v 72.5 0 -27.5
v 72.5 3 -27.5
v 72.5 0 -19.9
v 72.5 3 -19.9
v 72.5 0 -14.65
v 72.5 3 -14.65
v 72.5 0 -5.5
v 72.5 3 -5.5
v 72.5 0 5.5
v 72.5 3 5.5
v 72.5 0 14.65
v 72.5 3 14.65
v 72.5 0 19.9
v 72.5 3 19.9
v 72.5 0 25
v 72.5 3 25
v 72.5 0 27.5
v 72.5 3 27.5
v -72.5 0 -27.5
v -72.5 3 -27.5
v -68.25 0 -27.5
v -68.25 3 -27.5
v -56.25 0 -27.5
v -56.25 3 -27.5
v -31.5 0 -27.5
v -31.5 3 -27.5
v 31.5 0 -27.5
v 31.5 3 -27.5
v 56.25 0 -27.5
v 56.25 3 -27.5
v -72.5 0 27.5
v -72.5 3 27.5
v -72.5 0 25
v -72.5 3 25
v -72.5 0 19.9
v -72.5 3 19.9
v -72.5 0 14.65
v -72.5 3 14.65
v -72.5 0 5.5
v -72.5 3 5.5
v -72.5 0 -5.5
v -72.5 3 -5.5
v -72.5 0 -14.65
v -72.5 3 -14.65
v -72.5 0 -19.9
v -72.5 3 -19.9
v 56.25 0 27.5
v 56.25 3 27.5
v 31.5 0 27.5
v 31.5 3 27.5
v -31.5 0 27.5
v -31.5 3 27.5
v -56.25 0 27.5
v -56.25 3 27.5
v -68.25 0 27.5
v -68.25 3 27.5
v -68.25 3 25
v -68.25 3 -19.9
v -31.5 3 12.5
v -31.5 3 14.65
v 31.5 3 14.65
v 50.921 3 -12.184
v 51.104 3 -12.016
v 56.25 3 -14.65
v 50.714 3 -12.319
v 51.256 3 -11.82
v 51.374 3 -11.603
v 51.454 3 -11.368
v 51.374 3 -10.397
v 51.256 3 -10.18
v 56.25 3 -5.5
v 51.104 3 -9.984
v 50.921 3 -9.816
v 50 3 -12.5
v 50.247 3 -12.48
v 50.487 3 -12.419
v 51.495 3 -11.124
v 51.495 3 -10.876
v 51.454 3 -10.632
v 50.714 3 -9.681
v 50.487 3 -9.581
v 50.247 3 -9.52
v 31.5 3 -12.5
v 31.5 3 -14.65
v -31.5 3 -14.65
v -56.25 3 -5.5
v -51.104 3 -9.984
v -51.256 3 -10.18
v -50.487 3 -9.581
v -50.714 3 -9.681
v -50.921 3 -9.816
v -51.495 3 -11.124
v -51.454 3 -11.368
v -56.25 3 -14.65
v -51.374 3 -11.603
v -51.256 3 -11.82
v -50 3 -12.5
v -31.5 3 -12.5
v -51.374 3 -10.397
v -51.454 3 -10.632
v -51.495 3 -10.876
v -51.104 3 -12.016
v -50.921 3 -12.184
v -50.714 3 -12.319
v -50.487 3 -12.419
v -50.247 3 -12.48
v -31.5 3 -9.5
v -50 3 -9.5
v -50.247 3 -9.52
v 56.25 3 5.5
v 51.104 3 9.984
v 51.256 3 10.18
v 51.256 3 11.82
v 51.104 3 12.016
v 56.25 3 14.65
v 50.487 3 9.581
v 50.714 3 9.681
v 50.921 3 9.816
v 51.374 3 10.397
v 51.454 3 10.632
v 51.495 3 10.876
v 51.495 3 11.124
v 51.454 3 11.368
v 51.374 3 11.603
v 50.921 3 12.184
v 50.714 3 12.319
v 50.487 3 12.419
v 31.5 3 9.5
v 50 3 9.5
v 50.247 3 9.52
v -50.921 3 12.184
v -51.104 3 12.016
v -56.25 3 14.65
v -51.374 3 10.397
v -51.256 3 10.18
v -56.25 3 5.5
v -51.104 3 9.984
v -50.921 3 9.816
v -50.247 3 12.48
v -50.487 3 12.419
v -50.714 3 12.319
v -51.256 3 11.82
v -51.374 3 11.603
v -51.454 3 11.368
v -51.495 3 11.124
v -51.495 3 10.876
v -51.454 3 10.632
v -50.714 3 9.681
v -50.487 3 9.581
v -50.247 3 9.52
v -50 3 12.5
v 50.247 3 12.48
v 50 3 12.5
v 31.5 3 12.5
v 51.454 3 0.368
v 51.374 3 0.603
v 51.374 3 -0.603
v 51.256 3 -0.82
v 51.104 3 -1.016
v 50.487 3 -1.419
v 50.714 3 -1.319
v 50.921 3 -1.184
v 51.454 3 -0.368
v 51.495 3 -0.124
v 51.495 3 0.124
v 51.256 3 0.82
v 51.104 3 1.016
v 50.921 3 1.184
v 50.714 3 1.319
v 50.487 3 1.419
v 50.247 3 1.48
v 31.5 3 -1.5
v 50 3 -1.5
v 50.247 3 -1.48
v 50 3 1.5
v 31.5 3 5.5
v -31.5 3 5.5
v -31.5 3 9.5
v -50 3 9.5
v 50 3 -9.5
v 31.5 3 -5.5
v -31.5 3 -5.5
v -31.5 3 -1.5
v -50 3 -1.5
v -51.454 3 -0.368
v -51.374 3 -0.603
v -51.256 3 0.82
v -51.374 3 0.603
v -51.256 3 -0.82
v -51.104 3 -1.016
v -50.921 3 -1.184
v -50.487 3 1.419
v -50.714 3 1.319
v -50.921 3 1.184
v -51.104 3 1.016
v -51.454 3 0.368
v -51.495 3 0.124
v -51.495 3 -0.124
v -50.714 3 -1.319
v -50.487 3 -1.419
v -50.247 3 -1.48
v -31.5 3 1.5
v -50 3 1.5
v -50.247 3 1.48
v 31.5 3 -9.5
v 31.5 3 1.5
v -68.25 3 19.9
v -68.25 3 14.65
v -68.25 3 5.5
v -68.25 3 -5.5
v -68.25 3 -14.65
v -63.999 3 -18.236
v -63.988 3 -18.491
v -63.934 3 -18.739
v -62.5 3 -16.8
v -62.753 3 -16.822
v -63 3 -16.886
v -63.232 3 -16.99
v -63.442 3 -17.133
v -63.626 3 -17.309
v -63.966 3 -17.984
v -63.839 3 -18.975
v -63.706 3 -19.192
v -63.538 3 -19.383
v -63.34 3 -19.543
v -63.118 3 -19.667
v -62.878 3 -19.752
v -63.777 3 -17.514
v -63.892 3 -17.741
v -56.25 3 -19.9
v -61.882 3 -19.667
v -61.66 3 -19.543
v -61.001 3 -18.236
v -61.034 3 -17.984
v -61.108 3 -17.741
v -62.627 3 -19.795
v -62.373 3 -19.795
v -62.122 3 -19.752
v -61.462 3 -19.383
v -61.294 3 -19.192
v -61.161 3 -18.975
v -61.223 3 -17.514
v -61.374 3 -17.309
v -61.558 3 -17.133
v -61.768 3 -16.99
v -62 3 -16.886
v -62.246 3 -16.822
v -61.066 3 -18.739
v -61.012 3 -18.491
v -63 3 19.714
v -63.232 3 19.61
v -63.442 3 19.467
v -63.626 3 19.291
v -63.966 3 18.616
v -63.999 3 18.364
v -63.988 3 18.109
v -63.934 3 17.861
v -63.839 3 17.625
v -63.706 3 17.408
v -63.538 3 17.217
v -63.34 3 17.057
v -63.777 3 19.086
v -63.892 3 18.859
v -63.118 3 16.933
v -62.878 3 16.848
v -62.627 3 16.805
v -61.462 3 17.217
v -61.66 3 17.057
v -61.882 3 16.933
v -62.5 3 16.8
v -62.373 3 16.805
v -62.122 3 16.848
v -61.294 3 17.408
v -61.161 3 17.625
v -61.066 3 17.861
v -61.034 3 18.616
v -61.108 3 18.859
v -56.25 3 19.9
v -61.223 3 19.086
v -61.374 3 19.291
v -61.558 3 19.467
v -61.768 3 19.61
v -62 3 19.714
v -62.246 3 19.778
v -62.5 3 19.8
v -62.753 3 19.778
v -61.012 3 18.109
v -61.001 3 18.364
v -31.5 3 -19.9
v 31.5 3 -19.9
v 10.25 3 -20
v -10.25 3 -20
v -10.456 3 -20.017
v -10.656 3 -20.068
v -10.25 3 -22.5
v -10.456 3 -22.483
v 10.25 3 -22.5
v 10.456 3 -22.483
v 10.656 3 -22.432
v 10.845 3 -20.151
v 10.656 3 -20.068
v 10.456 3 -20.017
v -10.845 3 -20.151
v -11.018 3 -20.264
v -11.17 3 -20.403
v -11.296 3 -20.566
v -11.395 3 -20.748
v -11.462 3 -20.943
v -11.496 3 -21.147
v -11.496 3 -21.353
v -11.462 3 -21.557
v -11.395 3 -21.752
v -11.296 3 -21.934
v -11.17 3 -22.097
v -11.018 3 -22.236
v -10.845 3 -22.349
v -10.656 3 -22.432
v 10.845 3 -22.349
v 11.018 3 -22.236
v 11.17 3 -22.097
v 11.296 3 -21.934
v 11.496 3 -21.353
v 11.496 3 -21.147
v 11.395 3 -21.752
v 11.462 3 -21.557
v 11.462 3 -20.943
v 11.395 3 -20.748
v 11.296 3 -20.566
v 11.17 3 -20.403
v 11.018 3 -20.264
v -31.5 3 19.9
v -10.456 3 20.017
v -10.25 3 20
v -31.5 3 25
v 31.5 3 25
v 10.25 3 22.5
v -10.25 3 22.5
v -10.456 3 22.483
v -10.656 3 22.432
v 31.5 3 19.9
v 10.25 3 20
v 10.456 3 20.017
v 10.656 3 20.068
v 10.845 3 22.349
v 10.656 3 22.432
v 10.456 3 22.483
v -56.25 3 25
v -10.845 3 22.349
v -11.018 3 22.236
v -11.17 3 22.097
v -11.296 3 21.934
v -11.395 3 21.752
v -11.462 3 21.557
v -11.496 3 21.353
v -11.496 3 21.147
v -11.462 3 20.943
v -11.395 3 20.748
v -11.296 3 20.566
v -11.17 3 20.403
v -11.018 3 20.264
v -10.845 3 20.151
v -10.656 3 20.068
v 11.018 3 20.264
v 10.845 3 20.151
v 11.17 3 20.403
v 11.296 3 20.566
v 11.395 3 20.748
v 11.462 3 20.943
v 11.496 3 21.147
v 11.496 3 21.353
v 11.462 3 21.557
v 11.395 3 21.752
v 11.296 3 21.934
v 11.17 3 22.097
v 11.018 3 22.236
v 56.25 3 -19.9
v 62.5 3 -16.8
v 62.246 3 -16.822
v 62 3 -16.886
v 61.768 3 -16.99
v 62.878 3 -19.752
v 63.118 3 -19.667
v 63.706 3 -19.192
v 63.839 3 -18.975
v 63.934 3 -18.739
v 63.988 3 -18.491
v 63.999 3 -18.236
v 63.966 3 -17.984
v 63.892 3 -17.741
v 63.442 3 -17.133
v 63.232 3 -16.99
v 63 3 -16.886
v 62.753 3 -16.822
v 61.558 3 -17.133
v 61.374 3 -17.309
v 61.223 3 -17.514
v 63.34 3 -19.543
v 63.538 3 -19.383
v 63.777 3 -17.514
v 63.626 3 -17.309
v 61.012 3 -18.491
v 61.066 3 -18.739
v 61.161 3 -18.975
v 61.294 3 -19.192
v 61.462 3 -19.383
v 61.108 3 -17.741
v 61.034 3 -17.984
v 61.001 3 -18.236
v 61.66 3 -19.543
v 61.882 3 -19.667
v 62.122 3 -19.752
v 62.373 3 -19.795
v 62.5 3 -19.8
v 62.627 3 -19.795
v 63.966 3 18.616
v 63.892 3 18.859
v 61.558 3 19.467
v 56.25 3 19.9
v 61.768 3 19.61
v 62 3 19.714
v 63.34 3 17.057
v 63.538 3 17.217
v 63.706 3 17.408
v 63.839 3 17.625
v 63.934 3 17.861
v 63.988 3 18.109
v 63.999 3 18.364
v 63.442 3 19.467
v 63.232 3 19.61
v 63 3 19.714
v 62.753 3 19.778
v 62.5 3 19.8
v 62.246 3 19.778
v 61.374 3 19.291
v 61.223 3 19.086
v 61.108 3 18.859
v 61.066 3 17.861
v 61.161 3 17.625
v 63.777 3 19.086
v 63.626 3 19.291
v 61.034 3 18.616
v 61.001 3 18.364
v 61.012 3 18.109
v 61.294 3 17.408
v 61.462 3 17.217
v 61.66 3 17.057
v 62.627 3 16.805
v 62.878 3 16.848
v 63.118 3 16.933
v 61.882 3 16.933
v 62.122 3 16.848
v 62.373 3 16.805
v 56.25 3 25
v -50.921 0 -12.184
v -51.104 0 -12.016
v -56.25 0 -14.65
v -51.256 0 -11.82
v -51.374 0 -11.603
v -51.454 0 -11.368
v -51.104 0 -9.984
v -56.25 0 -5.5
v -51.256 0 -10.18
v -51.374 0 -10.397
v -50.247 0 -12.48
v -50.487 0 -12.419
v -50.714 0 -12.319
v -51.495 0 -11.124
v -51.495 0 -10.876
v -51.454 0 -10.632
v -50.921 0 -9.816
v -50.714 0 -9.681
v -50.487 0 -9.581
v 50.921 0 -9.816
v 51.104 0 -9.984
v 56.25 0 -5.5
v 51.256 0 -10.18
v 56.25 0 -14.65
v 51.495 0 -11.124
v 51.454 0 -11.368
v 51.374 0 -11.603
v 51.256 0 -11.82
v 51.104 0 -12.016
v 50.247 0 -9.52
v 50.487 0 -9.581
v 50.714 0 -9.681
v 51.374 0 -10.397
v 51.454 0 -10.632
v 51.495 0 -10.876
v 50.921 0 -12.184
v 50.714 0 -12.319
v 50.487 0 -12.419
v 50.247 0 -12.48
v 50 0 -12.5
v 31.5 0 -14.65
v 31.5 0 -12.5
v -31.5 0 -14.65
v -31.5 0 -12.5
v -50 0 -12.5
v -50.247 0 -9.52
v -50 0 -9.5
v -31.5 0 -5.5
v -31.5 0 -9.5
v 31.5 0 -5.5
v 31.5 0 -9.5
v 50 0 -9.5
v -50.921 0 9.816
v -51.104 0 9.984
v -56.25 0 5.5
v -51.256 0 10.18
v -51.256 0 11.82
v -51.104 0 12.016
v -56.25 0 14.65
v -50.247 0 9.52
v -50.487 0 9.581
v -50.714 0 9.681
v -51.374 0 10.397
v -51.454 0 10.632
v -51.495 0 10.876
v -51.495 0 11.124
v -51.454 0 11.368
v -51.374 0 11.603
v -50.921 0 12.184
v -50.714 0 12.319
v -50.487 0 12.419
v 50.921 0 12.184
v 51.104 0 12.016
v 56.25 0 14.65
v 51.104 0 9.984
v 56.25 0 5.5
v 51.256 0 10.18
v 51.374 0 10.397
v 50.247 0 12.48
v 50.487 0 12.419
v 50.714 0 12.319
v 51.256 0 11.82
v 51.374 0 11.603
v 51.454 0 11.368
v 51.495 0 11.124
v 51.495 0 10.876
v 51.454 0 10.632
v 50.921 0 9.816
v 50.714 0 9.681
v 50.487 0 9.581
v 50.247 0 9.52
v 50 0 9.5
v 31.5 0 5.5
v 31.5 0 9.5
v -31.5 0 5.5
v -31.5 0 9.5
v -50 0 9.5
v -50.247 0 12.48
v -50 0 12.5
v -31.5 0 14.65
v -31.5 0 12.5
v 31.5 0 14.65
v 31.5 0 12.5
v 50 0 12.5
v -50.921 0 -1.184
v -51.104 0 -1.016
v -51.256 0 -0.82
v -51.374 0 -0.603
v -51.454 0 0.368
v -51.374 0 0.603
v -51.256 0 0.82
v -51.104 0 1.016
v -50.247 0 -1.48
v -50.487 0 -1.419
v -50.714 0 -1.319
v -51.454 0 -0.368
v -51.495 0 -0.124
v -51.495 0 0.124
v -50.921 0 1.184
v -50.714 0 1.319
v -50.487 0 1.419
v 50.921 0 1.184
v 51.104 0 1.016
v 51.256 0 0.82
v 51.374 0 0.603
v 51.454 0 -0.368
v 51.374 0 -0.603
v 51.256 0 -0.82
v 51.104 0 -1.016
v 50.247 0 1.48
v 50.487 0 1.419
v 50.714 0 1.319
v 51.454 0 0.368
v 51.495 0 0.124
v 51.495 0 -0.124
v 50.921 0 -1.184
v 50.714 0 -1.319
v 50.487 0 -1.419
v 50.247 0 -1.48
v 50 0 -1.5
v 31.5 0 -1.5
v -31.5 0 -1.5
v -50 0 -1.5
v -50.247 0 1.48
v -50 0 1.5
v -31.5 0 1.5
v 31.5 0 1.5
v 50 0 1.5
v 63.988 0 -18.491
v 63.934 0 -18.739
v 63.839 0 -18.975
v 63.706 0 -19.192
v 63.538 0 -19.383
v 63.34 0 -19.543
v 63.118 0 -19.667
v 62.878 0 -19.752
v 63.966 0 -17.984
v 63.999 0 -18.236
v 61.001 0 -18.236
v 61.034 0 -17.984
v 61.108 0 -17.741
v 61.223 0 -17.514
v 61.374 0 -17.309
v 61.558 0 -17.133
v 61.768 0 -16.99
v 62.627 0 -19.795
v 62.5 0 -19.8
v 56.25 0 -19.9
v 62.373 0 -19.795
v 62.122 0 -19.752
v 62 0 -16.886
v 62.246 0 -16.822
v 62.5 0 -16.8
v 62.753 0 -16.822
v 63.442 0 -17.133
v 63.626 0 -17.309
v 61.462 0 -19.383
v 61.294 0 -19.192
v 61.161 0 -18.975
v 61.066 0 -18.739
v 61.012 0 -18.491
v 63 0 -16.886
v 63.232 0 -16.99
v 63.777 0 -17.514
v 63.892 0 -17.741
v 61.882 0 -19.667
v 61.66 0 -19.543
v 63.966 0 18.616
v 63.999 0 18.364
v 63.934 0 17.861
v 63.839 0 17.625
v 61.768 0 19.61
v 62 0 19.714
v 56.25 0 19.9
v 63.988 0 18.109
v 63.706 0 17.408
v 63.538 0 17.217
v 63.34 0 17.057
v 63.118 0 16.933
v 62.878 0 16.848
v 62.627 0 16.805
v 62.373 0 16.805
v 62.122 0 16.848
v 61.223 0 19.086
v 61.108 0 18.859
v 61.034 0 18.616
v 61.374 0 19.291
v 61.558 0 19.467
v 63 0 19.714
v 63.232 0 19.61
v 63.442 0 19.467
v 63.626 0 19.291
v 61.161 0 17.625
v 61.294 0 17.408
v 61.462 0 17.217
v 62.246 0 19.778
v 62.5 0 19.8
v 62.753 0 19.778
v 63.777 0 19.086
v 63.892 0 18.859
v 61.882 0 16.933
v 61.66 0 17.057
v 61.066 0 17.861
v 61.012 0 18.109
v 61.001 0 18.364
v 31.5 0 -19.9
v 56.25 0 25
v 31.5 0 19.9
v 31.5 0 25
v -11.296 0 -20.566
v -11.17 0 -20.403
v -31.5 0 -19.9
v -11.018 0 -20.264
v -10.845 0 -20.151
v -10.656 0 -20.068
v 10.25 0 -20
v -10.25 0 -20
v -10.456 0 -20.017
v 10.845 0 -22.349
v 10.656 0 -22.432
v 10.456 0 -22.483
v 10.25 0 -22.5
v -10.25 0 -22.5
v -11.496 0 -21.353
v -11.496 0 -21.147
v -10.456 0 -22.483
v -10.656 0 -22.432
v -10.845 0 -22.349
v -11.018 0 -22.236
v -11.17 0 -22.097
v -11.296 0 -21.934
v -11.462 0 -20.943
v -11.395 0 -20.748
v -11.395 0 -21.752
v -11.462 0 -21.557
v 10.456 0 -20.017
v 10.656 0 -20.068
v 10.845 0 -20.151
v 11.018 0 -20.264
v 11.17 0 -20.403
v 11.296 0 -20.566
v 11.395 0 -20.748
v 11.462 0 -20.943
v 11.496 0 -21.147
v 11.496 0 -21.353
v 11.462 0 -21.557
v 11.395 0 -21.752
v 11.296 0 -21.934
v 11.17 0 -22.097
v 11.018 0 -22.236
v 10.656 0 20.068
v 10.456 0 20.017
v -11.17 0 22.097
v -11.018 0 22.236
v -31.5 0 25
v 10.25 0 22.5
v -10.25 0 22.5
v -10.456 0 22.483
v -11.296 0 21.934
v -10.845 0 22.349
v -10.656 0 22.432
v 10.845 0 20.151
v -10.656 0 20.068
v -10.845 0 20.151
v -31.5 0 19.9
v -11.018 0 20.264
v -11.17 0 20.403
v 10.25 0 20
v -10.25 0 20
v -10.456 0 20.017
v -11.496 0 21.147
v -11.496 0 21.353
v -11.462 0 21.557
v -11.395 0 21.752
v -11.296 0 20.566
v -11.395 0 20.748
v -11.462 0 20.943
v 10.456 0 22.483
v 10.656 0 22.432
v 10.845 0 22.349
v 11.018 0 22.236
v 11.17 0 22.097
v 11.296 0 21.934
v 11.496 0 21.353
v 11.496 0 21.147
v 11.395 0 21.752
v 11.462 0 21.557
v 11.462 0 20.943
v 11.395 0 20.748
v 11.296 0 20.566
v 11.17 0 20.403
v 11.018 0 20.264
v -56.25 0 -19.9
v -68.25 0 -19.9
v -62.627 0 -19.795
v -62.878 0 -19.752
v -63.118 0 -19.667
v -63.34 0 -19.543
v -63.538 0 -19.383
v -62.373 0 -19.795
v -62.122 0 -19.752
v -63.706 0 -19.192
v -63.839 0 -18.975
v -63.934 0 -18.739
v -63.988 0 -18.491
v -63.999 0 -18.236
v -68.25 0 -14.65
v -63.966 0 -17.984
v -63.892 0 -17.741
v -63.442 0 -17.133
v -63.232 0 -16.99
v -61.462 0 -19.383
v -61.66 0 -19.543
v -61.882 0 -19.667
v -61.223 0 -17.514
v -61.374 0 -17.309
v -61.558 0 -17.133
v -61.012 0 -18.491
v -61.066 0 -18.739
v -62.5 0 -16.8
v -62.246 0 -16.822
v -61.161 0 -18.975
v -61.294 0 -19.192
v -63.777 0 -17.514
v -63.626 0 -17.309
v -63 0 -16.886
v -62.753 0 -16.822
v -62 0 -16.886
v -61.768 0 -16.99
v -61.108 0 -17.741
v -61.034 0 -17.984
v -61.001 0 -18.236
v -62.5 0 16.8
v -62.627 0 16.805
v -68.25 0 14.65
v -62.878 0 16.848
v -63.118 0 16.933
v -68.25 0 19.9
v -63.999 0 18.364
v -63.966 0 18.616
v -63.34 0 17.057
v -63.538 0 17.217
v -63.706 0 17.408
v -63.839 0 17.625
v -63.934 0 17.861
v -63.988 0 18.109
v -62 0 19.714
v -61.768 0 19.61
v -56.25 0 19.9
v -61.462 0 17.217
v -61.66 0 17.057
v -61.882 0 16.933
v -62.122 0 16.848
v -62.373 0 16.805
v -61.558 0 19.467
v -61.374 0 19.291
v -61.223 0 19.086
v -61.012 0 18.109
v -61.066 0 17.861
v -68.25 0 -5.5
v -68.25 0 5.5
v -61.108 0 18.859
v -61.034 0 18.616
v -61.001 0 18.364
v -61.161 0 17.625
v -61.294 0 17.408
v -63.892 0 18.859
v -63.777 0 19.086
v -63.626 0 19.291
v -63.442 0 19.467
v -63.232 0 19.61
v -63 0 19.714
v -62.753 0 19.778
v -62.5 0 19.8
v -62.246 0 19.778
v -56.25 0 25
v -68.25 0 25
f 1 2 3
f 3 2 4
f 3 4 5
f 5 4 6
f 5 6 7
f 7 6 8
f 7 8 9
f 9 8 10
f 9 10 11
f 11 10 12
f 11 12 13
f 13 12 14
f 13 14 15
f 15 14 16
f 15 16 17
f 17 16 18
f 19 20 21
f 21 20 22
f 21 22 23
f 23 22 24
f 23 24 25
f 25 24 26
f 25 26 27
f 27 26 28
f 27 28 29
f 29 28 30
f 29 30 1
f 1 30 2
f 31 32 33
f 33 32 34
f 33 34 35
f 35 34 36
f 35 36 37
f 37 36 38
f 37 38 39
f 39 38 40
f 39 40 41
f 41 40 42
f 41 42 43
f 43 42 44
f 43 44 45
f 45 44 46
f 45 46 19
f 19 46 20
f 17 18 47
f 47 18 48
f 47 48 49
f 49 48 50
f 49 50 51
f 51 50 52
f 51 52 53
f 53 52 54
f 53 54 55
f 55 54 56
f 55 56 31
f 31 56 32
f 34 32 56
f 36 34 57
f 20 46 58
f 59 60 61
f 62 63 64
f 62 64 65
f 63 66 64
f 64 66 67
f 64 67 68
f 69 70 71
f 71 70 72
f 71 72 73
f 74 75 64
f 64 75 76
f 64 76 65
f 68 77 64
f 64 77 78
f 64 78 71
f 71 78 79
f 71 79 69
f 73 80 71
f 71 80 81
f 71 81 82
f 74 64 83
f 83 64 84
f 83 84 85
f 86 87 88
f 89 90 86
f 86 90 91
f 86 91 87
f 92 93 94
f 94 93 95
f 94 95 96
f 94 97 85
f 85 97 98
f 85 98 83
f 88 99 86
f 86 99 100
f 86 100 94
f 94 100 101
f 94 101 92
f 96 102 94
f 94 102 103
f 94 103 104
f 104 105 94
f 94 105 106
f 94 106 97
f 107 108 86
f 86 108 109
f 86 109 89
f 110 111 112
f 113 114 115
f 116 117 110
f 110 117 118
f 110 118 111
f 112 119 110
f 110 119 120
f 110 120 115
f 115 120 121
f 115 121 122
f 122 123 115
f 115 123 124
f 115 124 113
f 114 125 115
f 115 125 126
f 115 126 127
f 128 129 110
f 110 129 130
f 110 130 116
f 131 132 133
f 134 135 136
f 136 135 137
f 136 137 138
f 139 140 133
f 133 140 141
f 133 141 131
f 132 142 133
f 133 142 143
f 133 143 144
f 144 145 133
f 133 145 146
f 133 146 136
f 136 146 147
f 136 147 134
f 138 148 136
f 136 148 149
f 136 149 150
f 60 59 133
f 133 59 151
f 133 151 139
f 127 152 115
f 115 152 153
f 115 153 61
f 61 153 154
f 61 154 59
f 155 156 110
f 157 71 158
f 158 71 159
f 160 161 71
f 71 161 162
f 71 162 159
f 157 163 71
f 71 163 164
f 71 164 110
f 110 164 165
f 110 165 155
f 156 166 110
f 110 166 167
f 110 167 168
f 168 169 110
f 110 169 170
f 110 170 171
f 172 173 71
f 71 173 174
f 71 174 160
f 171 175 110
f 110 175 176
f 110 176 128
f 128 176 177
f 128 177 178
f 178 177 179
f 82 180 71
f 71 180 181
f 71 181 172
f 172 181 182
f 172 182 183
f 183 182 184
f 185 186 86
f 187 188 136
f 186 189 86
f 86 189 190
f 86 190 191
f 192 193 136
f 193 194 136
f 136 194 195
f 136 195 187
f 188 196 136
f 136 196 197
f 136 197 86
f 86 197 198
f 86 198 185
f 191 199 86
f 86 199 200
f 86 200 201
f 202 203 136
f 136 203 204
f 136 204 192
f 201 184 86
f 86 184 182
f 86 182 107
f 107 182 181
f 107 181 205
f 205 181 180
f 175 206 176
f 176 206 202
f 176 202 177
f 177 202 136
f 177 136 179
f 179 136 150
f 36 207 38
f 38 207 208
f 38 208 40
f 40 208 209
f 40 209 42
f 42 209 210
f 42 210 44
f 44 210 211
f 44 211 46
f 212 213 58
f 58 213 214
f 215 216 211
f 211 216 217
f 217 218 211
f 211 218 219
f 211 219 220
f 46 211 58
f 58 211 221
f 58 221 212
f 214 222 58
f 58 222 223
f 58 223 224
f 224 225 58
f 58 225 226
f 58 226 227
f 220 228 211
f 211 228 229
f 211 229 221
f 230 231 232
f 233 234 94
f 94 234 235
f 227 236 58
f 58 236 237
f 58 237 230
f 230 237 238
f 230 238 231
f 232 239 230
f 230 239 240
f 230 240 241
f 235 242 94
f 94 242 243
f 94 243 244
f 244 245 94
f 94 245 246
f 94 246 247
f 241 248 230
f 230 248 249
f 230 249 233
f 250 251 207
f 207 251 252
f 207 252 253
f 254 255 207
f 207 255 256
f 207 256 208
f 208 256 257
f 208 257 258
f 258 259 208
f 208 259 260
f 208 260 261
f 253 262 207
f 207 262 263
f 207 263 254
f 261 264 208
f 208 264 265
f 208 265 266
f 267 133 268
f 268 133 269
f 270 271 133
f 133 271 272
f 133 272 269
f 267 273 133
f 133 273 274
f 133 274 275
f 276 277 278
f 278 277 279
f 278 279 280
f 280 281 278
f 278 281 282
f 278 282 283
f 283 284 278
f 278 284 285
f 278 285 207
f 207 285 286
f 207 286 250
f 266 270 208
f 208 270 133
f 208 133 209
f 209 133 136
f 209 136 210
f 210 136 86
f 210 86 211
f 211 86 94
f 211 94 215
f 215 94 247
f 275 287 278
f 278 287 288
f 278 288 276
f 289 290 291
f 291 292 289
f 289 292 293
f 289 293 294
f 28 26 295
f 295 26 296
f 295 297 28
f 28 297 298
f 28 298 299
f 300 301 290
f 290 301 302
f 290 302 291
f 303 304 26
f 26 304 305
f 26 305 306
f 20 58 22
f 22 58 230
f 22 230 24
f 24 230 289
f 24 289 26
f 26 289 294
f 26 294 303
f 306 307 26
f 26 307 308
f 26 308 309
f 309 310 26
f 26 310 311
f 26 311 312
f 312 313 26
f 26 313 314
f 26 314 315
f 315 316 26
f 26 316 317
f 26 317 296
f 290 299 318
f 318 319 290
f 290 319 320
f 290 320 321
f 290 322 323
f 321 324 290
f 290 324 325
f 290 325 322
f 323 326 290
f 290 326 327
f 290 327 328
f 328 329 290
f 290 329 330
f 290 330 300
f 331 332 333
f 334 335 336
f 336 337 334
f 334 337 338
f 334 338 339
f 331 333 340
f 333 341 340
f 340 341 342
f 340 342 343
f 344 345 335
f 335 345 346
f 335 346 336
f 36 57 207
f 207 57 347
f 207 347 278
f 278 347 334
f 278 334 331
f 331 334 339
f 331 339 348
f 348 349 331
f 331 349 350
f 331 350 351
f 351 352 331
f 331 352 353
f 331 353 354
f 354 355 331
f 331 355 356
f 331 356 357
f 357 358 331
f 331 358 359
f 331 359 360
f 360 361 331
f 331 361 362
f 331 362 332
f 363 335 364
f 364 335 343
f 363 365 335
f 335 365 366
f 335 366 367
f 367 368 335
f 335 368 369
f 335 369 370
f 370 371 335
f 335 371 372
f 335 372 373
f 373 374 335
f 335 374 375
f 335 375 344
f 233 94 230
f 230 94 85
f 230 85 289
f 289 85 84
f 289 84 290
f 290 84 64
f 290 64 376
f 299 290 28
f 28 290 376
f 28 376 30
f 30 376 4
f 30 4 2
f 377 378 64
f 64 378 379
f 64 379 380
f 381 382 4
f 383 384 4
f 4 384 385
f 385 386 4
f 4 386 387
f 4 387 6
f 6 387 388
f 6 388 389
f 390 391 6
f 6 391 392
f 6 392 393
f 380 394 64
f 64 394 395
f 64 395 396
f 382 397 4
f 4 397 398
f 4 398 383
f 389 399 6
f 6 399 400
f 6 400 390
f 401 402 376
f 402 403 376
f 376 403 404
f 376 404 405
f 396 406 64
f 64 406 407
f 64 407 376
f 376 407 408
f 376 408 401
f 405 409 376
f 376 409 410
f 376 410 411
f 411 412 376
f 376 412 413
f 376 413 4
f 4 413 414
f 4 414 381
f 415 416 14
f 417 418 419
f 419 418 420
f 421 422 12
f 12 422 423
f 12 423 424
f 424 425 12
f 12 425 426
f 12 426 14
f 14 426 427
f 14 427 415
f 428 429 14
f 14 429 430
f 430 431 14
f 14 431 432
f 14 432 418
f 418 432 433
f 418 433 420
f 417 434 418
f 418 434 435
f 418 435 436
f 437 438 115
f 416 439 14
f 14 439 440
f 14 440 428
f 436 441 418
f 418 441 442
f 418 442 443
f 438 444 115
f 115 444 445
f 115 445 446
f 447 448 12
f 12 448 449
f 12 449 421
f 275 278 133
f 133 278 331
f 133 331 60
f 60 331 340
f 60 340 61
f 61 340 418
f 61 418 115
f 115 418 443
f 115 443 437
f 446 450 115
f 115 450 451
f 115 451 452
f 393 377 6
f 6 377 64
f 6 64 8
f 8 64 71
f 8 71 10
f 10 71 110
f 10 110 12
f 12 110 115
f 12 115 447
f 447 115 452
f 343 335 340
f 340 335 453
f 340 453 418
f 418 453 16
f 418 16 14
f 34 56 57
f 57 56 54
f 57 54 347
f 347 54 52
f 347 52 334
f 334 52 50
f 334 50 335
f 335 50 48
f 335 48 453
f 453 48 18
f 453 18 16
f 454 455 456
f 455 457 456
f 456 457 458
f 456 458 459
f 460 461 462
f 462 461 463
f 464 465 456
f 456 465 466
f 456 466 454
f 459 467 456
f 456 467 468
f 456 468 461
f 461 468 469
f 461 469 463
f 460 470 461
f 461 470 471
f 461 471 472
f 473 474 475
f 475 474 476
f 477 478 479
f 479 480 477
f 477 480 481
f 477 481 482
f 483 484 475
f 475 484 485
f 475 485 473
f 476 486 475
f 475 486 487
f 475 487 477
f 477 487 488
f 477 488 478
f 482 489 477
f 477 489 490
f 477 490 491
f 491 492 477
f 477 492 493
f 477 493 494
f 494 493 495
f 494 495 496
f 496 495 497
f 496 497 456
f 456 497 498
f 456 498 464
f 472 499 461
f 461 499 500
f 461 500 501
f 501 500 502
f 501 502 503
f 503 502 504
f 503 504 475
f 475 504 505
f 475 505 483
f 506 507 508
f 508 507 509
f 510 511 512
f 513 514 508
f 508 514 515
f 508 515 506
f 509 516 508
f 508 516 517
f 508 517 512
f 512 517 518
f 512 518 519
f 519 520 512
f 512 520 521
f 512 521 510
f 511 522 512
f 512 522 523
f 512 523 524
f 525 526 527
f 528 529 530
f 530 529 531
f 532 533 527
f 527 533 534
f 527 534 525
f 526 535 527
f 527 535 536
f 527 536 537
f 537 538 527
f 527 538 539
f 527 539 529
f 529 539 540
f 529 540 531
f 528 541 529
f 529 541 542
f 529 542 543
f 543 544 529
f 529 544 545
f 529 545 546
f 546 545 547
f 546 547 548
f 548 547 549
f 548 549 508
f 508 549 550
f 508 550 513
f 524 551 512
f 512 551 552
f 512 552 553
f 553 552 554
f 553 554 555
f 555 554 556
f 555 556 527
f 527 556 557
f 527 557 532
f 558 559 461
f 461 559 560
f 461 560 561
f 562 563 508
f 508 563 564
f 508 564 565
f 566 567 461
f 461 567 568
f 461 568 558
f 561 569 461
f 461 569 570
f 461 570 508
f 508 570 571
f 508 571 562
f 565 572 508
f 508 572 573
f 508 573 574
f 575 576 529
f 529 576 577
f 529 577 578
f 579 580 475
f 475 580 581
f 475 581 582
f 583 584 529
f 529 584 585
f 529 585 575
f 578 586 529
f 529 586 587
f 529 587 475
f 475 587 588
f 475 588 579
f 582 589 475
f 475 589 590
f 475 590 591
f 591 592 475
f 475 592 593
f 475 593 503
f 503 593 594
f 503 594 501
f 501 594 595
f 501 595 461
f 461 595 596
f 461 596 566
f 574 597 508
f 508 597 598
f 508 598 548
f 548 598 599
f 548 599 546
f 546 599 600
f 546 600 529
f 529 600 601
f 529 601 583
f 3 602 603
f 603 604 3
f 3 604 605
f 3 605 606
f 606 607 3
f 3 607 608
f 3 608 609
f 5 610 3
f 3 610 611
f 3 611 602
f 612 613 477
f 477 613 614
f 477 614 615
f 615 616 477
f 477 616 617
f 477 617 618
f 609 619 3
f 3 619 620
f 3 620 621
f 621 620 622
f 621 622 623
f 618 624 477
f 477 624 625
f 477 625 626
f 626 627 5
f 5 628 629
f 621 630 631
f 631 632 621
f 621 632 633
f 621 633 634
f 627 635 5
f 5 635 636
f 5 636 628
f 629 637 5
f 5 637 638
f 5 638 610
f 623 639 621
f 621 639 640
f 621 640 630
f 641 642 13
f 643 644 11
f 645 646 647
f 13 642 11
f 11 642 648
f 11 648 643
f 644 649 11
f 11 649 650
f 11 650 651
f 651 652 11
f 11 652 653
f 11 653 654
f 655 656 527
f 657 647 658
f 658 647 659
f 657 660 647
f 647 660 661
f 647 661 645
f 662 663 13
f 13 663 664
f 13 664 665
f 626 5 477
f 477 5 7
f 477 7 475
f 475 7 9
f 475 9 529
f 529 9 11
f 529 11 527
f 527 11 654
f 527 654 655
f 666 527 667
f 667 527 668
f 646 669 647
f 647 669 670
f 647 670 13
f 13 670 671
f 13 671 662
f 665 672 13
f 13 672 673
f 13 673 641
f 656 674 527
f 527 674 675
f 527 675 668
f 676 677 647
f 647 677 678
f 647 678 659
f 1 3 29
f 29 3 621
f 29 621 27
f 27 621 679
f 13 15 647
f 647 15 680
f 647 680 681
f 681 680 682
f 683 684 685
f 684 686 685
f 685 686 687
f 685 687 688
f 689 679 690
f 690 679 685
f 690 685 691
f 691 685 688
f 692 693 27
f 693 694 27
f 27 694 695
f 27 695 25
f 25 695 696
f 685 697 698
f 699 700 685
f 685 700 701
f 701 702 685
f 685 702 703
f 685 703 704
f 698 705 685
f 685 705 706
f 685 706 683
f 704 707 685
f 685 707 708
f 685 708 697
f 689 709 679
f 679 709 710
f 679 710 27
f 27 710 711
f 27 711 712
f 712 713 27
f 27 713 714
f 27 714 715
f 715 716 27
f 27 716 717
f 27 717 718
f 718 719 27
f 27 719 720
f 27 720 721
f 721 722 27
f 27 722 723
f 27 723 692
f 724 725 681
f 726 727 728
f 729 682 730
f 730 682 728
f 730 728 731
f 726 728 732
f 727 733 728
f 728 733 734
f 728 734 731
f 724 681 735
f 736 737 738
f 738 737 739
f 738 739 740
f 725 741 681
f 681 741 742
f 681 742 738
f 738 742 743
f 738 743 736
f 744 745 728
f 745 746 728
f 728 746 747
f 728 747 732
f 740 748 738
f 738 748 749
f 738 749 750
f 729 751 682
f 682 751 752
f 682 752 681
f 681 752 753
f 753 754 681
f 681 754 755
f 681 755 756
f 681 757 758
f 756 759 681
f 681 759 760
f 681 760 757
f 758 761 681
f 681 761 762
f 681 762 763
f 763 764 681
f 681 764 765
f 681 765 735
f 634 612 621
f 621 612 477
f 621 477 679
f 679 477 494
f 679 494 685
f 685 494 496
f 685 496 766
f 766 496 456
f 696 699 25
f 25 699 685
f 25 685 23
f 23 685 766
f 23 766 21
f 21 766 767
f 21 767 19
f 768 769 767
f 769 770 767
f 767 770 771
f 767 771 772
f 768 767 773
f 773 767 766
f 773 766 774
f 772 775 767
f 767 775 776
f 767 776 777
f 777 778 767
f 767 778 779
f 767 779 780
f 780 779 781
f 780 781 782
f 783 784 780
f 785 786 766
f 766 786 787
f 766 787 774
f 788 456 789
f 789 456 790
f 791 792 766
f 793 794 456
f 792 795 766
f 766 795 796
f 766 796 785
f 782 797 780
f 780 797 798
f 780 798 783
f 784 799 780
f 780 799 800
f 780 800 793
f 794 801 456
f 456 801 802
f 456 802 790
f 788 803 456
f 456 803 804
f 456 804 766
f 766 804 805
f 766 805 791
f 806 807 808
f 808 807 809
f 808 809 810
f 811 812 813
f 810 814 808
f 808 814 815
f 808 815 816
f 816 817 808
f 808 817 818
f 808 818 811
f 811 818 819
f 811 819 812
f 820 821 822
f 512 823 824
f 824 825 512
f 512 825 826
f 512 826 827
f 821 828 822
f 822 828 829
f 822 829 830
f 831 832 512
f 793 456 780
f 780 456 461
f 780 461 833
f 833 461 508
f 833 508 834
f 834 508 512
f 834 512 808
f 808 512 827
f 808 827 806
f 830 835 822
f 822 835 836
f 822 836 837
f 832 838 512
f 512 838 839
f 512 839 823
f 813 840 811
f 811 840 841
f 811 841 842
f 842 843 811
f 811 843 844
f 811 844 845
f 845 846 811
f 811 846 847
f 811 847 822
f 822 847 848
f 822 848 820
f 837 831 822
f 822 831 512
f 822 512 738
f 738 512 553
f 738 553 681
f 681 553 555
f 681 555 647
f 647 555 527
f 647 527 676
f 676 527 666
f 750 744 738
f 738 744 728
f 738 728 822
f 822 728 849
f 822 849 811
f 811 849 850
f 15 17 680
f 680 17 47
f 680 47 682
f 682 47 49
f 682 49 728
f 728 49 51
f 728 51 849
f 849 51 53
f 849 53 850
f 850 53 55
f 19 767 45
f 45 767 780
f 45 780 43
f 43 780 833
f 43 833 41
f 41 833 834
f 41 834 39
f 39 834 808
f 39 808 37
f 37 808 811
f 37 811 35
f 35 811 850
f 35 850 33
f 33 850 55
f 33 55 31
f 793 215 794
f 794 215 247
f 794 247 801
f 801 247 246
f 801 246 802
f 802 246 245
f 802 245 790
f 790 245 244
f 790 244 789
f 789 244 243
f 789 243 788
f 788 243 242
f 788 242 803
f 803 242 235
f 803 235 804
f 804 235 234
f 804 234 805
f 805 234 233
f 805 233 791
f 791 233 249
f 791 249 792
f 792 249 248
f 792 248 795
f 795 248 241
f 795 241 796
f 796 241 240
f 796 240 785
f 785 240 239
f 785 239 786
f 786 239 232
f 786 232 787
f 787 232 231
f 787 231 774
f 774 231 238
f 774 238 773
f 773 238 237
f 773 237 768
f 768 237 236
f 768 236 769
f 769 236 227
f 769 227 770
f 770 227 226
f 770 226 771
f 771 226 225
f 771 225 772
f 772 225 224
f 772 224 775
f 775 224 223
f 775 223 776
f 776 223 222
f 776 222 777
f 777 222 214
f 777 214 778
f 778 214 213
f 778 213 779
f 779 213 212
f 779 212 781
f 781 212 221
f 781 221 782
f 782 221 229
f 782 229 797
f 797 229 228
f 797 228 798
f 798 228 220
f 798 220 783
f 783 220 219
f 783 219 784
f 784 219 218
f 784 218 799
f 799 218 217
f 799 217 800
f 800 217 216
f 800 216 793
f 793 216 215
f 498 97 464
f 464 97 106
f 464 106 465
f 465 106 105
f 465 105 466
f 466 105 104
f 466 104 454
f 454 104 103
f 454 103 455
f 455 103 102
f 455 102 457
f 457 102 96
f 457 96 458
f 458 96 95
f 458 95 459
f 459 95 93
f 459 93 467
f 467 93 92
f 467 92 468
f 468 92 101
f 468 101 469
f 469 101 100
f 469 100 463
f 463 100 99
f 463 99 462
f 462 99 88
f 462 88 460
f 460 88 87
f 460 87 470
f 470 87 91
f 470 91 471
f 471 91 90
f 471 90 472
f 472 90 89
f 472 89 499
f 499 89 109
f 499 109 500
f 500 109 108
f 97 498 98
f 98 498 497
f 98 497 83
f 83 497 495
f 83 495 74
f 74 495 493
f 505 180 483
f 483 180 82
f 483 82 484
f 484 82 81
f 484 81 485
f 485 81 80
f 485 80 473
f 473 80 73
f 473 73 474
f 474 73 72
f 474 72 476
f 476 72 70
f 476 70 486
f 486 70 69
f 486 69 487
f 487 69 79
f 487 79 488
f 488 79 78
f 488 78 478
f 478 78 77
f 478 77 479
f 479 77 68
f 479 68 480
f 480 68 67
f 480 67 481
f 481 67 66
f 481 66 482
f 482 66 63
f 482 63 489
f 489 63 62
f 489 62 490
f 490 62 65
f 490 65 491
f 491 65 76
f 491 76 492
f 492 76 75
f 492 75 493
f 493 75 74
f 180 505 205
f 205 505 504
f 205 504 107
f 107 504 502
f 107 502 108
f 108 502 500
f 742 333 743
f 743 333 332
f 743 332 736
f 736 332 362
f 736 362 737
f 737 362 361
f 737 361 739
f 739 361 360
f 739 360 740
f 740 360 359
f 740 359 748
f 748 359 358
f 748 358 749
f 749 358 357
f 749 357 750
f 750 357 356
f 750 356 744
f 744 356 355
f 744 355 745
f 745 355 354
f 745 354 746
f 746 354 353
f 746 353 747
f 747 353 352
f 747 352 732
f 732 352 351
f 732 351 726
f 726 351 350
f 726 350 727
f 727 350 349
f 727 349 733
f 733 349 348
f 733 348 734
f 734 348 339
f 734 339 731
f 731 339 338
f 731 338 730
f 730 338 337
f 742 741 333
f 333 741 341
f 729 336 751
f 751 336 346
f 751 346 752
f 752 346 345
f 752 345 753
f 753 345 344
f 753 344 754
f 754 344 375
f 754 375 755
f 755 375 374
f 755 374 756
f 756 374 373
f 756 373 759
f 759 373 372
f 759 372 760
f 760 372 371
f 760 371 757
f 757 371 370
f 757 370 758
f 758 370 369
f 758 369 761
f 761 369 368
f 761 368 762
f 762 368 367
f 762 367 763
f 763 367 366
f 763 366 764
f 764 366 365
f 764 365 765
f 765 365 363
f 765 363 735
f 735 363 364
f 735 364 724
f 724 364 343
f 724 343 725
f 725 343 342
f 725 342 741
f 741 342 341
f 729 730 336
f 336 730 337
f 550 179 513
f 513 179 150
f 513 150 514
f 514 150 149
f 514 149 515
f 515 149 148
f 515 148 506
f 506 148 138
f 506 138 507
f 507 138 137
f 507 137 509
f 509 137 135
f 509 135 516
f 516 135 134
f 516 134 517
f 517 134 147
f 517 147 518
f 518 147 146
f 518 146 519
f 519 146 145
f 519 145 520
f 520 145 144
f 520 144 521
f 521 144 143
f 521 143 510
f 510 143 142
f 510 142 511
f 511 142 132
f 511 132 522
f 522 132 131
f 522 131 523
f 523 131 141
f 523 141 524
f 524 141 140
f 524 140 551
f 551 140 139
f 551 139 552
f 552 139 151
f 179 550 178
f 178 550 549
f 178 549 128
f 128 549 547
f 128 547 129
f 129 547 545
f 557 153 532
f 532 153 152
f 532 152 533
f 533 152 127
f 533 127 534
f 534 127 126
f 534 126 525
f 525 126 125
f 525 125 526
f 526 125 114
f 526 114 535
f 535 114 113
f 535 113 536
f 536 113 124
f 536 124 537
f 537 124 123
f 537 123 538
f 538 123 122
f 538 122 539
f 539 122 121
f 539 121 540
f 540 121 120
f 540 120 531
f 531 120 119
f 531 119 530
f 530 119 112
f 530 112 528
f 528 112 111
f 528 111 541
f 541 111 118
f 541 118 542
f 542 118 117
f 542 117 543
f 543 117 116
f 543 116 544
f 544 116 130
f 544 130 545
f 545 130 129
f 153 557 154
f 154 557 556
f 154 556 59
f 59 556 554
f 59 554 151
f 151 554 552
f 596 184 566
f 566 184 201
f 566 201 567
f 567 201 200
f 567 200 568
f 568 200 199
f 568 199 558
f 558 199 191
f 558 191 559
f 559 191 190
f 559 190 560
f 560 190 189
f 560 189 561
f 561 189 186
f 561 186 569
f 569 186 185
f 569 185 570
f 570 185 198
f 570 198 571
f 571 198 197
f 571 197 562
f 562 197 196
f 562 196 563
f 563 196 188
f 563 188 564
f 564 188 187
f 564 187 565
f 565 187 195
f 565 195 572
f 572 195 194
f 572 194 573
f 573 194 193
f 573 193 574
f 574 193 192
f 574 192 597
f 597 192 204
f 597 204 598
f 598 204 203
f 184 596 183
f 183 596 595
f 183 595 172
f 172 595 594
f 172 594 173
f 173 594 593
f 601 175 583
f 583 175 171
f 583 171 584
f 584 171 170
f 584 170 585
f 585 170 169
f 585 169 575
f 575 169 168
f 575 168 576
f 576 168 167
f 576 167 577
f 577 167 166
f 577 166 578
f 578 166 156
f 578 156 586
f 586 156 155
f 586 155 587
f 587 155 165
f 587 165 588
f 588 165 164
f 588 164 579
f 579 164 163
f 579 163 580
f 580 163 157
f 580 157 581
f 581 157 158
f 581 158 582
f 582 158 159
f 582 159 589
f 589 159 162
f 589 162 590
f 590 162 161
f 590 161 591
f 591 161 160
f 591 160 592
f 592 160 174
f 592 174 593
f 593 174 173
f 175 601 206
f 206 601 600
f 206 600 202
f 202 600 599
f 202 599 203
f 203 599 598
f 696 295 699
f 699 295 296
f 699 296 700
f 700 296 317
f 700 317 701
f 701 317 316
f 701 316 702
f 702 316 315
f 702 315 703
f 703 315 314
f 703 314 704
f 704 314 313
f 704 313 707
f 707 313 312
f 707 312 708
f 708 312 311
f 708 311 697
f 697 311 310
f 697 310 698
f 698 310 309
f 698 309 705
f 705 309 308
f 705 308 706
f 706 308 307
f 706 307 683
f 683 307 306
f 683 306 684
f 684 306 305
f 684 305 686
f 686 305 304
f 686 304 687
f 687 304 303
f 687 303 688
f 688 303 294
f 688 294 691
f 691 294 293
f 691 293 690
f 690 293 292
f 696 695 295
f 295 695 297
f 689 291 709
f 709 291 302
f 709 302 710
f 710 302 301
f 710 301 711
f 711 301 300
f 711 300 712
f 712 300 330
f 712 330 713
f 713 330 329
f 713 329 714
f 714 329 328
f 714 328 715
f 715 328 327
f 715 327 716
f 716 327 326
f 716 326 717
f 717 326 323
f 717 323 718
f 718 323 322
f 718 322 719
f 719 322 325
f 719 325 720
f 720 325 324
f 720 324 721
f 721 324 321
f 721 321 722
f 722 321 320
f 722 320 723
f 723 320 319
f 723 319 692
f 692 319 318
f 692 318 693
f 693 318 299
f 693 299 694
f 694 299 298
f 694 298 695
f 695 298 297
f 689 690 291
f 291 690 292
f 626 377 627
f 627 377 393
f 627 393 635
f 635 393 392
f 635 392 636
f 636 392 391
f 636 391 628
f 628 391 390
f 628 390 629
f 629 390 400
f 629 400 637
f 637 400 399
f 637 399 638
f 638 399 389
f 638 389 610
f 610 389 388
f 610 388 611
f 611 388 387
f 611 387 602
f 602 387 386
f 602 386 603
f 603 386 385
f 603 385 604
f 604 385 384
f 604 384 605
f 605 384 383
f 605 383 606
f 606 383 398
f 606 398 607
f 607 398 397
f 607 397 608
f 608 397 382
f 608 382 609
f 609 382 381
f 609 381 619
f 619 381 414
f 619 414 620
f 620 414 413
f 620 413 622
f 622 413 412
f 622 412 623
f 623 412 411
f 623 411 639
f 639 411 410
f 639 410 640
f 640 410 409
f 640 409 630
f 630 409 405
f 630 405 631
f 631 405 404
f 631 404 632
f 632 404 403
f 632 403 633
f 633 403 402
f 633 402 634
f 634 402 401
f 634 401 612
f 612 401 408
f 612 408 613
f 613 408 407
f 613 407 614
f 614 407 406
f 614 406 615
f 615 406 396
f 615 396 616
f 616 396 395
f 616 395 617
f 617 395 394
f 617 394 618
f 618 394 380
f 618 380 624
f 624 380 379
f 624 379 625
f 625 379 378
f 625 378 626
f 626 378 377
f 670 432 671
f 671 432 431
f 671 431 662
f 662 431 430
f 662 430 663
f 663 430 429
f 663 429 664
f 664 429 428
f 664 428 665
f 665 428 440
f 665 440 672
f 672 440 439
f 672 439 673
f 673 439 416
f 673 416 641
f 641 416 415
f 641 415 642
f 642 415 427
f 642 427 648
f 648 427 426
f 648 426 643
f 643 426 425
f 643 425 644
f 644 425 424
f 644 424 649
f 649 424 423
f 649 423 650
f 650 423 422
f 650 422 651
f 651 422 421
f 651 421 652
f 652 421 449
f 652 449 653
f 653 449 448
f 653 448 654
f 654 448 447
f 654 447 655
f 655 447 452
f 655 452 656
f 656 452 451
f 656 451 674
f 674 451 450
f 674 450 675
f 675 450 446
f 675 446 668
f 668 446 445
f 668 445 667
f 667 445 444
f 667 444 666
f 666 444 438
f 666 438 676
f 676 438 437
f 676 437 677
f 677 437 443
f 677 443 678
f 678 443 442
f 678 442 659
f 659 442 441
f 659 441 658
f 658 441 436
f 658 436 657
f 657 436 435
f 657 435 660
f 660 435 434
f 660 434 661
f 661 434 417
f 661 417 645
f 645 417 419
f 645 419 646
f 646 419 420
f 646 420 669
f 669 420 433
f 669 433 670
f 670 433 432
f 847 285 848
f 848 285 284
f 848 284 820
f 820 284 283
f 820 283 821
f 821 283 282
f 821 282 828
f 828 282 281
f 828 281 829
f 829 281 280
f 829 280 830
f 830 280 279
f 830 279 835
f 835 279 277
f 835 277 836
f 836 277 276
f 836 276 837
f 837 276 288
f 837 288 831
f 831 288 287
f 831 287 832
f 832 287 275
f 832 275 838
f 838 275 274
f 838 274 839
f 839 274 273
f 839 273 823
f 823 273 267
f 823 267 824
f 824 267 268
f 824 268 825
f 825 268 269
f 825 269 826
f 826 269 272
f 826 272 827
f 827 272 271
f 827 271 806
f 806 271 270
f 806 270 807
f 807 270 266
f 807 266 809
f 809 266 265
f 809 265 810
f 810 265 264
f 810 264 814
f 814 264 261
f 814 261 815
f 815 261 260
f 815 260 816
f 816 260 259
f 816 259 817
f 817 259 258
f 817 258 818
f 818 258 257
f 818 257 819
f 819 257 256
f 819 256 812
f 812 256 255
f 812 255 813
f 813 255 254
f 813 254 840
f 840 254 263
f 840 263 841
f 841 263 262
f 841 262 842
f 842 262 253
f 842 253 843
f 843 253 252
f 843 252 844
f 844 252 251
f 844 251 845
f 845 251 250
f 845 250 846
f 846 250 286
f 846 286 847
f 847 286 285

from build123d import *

# Parameters (mm, degrees)
ESBO_O1_W                = 145
ESBO_O1_H                = 55
RESSALTO_EXTRUS_O1_DEPTH = 3
ESBO_O2_R                = 1.5
CORTE_EXTRUS_O1_DEPTH    = 3


with BuildPart() as part:
    # Esboço1 → Ressalto-extrusão1 (new body)
    with BuildSketch(Plane(origin=(0, 0, 0), x_dir=(1, 0, 0), z_dir=(0, 1, 0))):
        Rectangle(ESBO_O1_W, ESBO_O1_H)
    extrude(amount=RESSALTO_EXTRUS_O1_DEPTH)

    # Esboço2 → Corte-extrusão1 (cut)
    with BuildSketch(Plane(origin=(0, 3, 0), x_dir=(1, 0, 0), z_dir=(0, 1, 0))):
        with Locations(Location((-62.5, 18.3, 0), (0, 0, 270))):
            Circle(ESBO_O2_R)
        with Locations(Location((-62.5, -18.3, 0), (0, 0, 90))):
            Circle(ESBO_O2_R)
        with Locations(Location((62.5, -18.3, 0), (0, 0, 270))):
            Circle(ESBO_O2_R)
        with Locations(Location((62.5, 18.3, 0), (0, 0, 90))):
            Circle(ESBO_O2_R)
        with BuildLine():
            Line((-10.25, 22.5), (10.25, 22.5))
            ThreePointArc((10.25, 22.5), (11.5, 21.25), (10.25, 20))
            Line((10.25, 20), (-10.25, 20))
            ThreePointArc((-10.25, 20), (-11.5, 21.25), (-10.25, 22.5))
        make_face()
        with BuildLine():
            Line((-50, 12.5), (50, 12.5))
            ThreePointArc((50, 12.5), (51.5, 11), (50, 9.5))
            Line((50, 9.5), (-50, 9.5))
            ThreePointArc((-50, 9.5), (-51.5, 11), (-50, 12.5))
        make_face()
        with BuildLine():
            Line((-10.25, -22.5), (10.25, -22.5))
            ThreePointArc((10.25, -22.5), (11.5, -21.25), (10.25, -20))
            Line((10.25, -20), (-10.25, -20))
            ThreePointArc((-10.25, -20), (-11.5, -21.25), (-10.25, -22.5))
        make_face()
        with BuildLine():
            Line((-50, -12.5), (50, -12.5))
            ThreePointArc((50, -12.5), (51.5, -11), (50, -9.5))
            Line((50, -9.5), (-50, -9.5))
            ThreePointArc((-50, -9.5), (-51.5, -11), (-50, -12.5))
        make_face()
        with BuildLine():
            Line((-50, 1.5), (50, 1.5))
            ThreePointArc((50, 1.5), (51.5, 0), (50, -1.5))
            Line((50, -1.5), (-50, -1.5))
            ThreePointArc((-50, -1.5), (-51.5, 0), (-50, 1.5))
        make_face()
    extrude(amount=-CORTE_EXTRUS_O1_DEPTH, mode=Mode.SUBTRACT)


solid = part.part
